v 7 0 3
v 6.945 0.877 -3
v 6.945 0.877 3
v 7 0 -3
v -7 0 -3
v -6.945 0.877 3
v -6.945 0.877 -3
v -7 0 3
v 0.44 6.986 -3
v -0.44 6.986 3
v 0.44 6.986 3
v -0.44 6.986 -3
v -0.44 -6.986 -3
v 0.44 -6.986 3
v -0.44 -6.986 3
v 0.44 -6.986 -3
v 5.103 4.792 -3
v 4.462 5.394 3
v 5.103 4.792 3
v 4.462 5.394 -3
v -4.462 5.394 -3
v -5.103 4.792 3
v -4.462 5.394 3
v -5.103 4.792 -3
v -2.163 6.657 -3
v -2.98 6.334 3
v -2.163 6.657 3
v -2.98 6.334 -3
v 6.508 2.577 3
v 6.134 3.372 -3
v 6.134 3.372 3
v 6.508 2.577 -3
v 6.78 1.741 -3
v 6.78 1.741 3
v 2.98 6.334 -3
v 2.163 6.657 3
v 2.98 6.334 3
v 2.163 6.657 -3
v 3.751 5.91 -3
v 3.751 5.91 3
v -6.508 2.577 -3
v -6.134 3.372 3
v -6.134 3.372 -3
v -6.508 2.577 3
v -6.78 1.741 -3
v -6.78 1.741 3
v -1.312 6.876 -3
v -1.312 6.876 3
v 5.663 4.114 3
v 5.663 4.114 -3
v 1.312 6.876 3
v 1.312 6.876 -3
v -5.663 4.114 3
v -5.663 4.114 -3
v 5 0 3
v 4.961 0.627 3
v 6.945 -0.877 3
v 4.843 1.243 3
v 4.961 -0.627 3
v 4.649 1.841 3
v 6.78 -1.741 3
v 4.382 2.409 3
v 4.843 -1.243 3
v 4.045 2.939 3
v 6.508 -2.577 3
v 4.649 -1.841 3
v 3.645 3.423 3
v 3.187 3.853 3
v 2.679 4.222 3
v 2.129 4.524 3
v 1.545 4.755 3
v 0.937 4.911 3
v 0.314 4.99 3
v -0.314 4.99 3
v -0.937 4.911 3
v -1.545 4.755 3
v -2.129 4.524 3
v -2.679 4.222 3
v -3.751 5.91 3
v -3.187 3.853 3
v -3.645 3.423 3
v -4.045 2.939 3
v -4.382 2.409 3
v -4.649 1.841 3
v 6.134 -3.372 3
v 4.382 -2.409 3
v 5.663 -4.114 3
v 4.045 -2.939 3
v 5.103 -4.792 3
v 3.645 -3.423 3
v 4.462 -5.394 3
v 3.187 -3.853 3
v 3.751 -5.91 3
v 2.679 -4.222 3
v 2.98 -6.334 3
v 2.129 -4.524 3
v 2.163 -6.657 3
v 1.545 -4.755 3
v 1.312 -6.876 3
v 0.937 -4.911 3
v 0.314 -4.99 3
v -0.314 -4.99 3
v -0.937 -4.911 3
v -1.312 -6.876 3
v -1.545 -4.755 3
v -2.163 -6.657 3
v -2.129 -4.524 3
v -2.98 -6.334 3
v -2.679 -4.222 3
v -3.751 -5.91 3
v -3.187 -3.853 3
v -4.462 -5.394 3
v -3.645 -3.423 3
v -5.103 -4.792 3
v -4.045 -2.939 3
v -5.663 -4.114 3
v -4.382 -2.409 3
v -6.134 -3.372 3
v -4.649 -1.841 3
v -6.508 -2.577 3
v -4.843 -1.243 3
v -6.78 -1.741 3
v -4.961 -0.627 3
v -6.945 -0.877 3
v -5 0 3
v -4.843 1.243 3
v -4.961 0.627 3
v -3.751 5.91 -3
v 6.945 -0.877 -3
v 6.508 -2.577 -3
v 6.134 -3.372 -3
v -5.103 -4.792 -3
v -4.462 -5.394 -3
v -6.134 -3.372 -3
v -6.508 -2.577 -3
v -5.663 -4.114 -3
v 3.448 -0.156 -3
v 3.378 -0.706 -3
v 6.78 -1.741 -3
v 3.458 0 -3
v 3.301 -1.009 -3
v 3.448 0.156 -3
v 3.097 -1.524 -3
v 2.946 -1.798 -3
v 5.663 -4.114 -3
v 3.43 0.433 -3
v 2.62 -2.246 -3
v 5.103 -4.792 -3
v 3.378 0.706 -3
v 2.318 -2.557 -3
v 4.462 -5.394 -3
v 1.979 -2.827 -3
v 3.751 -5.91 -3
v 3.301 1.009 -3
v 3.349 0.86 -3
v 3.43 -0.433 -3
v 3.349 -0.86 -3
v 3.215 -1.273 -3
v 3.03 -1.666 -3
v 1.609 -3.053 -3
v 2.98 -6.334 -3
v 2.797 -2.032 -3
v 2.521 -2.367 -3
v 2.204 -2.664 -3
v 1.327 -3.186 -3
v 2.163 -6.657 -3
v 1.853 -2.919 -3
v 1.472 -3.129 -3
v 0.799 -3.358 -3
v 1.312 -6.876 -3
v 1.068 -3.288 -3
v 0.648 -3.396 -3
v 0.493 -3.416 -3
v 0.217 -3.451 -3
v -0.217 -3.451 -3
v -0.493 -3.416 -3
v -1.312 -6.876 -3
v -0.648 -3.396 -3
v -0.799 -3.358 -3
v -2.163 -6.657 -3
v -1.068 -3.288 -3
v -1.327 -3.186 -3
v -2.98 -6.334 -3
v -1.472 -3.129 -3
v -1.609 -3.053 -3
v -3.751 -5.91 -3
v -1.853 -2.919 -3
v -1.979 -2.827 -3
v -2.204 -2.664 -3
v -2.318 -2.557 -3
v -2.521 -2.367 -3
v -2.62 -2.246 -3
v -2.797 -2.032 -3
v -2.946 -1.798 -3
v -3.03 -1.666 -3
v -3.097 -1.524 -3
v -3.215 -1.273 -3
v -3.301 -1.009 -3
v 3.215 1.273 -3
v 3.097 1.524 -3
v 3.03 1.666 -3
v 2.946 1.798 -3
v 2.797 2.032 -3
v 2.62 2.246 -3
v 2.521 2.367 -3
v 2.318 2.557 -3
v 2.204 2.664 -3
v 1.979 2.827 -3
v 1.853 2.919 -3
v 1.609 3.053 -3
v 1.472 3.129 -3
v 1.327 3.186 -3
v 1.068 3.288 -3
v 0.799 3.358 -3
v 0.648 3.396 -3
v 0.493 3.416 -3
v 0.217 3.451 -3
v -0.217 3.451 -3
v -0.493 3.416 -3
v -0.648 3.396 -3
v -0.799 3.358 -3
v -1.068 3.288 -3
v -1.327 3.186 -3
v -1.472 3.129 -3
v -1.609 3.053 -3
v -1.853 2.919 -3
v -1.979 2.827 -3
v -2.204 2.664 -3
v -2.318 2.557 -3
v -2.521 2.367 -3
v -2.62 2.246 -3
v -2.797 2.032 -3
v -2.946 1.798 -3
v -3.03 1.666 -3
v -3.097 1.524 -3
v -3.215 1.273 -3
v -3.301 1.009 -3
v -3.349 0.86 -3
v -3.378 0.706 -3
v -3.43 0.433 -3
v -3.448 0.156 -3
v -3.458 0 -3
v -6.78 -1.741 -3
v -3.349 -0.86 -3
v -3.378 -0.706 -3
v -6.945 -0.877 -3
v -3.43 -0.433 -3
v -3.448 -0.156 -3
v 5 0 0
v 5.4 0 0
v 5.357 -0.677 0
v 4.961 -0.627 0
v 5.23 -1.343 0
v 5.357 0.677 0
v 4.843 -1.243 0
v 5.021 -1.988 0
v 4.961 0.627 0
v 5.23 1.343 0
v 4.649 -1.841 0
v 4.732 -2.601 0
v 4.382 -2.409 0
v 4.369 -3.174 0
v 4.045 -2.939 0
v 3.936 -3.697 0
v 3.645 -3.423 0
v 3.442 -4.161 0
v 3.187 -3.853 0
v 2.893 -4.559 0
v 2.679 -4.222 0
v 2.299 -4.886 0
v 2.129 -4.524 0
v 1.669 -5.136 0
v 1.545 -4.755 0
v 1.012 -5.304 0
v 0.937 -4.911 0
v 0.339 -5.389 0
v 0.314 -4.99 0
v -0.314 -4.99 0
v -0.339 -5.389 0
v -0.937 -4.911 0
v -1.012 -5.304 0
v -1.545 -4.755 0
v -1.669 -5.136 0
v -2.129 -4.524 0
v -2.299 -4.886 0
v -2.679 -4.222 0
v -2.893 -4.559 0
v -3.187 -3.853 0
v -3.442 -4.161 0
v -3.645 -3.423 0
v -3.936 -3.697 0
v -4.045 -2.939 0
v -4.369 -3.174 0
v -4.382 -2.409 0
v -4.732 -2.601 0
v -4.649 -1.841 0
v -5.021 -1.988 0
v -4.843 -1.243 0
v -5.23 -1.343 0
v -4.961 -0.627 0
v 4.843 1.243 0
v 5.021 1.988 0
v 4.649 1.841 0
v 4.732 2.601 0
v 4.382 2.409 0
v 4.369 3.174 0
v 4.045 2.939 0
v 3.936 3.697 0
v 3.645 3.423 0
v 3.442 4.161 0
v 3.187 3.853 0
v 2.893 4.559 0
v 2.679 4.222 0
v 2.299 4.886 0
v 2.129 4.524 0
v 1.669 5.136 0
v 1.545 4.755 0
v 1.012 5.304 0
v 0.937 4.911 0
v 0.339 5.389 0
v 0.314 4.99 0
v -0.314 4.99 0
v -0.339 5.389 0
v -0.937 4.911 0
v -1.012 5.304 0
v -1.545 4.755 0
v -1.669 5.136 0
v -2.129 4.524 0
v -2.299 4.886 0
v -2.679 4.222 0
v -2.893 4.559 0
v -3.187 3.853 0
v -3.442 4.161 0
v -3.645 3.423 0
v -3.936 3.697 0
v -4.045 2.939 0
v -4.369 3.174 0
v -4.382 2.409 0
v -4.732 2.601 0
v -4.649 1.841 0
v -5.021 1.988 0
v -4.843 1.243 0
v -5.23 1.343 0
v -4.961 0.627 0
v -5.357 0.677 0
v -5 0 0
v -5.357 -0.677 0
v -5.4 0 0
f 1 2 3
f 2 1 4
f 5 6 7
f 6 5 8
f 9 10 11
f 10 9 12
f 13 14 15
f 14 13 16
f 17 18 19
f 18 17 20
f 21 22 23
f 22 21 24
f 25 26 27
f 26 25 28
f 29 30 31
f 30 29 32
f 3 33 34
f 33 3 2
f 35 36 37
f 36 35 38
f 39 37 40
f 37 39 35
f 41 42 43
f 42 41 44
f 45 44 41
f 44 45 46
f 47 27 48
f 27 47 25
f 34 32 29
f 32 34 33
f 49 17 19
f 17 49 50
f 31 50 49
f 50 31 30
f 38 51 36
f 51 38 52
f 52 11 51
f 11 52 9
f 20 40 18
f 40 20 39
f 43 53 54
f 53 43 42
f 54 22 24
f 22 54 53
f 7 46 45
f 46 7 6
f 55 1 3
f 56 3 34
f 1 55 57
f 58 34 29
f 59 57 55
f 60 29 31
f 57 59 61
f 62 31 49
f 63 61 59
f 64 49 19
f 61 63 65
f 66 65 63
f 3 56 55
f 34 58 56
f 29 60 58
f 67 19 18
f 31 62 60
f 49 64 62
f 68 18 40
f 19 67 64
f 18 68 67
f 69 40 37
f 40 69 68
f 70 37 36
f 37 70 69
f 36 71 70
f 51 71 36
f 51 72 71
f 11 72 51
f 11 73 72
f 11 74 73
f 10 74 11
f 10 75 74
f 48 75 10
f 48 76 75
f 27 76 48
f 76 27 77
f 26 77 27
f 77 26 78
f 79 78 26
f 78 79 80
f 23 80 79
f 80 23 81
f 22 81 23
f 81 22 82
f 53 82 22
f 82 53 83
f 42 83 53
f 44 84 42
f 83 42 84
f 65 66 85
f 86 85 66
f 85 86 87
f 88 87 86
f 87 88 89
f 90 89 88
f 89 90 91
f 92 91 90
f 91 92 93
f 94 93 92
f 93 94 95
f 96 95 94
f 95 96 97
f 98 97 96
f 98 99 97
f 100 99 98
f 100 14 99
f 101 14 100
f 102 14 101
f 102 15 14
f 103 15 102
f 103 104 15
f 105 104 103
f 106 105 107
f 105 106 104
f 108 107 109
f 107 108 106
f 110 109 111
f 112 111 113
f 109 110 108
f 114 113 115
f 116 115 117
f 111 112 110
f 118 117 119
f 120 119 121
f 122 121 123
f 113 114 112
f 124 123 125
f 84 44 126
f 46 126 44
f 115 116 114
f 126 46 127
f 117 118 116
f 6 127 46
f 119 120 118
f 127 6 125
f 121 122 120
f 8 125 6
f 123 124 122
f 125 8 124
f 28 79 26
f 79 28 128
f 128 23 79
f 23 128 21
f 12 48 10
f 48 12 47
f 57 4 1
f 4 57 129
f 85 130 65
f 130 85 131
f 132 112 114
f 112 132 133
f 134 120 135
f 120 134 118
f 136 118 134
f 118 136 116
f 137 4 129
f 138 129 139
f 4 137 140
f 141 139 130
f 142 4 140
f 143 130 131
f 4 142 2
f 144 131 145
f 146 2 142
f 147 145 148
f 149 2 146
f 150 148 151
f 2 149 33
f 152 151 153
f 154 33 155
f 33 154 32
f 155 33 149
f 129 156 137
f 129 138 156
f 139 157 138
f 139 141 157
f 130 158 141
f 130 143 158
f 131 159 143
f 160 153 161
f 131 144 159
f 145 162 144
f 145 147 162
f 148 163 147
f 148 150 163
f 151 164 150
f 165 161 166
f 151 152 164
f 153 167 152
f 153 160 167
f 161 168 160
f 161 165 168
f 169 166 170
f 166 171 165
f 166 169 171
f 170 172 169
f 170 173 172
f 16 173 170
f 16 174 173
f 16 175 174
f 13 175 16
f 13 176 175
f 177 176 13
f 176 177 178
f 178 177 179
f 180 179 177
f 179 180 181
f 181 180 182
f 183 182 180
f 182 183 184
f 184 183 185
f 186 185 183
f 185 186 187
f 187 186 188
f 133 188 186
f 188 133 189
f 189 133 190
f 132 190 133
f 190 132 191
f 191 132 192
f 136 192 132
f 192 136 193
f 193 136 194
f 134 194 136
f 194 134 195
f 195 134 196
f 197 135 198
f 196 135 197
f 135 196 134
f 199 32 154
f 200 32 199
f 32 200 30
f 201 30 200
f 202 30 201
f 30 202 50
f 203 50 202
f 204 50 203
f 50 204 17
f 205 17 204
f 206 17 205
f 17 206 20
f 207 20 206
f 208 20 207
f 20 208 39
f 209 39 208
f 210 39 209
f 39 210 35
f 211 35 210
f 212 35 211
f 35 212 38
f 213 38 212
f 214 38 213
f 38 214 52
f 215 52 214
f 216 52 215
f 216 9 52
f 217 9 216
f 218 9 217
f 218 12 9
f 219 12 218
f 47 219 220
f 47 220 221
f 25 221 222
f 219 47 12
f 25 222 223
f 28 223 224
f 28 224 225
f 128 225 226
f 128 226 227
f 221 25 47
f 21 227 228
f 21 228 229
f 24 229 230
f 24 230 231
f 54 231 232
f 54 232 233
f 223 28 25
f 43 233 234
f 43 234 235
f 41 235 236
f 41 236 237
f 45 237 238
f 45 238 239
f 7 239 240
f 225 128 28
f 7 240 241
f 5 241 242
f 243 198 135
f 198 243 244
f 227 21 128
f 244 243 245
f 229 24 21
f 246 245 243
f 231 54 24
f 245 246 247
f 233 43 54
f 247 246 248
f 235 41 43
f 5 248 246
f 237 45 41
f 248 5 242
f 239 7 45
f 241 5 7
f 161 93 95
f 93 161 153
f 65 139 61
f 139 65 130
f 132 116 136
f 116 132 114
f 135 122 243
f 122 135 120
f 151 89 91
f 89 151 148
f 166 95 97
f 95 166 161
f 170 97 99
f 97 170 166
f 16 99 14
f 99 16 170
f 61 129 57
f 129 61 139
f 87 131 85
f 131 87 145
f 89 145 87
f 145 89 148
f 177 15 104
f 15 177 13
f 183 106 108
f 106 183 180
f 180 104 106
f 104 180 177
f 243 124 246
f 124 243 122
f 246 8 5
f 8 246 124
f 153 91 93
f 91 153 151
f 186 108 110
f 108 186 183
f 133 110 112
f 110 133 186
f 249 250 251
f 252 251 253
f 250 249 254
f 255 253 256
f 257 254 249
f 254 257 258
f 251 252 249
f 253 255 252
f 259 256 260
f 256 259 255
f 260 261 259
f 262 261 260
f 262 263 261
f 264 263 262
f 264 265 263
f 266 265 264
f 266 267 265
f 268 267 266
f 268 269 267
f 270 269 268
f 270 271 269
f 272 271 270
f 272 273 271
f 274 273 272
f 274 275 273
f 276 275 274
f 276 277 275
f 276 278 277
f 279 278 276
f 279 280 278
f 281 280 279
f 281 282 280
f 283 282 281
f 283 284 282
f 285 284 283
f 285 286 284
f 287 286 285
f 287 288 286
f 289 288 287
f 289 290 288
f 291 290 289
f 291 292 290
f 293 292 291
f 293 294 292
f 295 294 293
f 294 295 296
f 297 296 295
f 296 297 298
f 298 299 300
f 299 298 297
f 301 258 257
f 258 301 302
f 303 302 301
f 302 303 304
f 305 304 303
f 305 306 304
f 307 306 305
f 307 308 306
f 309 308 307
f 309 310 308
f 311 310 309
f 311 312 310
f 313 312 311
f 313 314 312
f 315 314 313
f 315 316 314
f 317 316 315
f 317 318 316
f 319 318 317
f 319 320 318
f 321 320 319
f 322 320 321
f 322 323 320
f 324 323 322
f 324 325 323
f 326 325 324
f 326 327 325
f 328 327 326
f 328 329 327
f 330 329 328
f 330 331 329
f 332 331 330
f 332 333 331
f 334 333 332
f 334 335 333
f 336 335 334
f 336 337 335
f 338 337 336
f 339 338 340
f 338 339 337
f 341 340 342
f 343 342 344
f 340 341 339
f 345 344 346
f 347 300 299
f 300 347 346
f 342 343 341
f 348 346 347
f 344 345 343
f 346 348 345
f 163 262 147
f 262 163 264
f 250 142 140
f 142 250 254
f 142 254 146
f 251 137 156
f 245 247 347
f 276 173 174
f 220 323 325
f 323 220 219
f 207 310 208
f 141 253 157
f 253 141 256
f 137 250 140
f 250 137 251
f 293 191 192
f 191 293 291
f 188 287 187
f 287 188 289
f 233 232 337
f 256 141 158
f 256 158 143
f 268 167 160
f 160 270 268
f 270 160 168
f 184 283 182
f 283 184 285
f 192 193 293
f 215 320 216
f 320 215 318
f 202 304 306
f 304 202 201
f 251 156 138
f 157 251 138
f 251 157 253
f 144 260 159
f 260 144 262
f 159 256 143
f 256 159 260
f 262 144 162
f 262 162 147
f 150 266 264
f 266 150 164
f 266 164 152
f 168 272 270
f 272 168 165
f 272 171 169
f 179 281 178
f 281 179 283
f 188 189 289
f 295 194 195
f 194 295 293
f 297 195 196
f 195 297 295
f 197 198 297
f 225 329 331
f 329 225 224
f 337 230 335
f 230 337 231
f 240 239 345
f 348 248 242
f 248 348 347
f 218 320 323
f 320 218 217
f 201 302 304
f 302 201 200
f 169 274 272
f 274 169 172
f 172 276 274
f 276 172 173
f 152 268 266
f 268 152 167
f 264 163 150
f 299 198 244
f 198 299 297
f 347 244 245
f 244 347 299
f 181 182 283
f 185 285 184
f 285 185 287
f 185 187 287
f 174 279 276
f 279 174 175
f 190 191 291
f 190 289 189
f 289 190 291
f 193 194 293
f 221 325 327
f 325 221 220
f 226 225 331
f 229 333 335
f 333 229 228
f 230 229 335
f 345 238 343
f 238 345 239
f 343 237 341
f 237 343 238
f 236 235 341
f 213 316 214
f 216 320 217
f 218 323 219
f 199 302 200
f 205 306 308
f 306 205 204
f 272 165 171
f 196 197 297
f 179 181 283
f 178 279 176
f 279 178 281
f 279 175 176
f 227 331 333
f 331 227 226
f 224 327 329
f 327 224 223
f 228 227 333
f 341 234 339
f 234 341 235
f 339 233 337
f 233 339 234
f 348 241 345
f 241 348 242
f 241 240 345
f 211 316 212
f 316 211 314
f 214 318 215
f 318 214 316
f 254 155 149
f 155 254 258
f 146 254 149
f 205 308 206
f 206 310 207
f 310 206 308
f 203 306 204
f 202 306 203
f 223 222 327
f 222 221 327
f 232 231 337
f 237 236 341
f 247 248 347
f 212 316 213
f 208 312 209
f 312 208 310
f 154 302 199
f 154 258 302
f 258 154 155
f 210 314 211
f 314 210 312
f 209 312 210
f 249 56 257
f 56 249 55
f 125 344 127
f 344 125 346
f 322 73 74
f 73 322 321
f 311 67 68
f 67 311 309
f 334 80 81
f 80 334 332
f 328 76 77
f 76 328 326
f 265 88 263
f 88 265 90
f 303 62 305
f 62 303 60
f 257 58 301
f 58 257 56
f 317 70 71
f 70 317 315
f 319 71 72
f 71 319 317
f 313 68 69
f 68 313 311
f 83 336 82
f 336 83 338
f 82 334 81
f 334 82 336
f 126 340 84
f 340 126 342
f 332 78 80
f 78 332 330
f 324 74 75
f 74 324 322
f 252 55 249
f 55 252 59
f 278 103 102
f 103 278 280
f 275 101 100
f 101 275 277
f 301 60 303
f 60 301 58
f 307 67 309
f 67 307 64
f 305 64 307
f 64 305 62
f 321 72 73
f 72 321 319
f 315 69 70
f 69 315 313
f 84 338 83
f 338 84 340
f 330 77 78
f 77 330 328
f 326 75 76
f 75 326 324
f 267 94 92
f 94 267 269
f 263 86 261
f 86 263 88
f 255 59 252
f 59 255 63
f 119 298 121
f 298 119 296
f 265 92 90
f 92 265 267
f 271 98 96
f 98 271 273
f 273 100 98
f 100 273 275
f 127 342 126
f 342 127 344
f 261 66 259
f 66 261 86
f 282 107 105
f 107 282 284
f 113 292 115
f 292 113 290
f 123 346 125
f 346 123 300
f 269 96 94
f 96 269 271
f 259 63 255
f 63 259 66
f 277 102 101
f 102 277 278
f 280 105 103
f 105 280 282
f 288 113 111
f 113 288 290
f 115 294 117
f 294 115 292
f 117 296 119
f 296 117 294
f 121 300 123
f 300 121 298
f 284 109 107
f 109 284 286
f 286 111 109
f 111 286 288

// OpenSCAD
$fn = 50;


difference() {
	union() {
		translate(v = [0, 0, -3.0000000000]) {
			cylinder(h = 6, r = 7.0000000000);
		}
		#translate(v = [0, 0, -6.0000000000]) {
			cylinder(h = 6, r = 2.8750000000);
		}
	}
	union() {
		translate(v = [0, 0, 0]) {
			rotate(a = [0, 0, 0]) {
				difference() {
					union() {
						translate(v = [0, 0, -6.0000000000]) {
							cylinder(h = 6, r = 2.6000000000);
						}
						translate(v = [0, 0, -3.9000000000]) {
							cylinder(h = 3.9000000000, r1 = 2.8750000000, r2 = 5.4000000000);
						}
						translate(v = [0, 0, -6.0000000000]) {
							cylinder(h = 6, r = 2.8750000000);
						}
						translate(v = [0, 0, -6.0000000000]) {
							cylinder(h = 6, r = 2.6000000000);
						}
					}
					union();
				}
			}
		}
		#cylinder(h = 3, r = 5.0000000000);
	}
}
